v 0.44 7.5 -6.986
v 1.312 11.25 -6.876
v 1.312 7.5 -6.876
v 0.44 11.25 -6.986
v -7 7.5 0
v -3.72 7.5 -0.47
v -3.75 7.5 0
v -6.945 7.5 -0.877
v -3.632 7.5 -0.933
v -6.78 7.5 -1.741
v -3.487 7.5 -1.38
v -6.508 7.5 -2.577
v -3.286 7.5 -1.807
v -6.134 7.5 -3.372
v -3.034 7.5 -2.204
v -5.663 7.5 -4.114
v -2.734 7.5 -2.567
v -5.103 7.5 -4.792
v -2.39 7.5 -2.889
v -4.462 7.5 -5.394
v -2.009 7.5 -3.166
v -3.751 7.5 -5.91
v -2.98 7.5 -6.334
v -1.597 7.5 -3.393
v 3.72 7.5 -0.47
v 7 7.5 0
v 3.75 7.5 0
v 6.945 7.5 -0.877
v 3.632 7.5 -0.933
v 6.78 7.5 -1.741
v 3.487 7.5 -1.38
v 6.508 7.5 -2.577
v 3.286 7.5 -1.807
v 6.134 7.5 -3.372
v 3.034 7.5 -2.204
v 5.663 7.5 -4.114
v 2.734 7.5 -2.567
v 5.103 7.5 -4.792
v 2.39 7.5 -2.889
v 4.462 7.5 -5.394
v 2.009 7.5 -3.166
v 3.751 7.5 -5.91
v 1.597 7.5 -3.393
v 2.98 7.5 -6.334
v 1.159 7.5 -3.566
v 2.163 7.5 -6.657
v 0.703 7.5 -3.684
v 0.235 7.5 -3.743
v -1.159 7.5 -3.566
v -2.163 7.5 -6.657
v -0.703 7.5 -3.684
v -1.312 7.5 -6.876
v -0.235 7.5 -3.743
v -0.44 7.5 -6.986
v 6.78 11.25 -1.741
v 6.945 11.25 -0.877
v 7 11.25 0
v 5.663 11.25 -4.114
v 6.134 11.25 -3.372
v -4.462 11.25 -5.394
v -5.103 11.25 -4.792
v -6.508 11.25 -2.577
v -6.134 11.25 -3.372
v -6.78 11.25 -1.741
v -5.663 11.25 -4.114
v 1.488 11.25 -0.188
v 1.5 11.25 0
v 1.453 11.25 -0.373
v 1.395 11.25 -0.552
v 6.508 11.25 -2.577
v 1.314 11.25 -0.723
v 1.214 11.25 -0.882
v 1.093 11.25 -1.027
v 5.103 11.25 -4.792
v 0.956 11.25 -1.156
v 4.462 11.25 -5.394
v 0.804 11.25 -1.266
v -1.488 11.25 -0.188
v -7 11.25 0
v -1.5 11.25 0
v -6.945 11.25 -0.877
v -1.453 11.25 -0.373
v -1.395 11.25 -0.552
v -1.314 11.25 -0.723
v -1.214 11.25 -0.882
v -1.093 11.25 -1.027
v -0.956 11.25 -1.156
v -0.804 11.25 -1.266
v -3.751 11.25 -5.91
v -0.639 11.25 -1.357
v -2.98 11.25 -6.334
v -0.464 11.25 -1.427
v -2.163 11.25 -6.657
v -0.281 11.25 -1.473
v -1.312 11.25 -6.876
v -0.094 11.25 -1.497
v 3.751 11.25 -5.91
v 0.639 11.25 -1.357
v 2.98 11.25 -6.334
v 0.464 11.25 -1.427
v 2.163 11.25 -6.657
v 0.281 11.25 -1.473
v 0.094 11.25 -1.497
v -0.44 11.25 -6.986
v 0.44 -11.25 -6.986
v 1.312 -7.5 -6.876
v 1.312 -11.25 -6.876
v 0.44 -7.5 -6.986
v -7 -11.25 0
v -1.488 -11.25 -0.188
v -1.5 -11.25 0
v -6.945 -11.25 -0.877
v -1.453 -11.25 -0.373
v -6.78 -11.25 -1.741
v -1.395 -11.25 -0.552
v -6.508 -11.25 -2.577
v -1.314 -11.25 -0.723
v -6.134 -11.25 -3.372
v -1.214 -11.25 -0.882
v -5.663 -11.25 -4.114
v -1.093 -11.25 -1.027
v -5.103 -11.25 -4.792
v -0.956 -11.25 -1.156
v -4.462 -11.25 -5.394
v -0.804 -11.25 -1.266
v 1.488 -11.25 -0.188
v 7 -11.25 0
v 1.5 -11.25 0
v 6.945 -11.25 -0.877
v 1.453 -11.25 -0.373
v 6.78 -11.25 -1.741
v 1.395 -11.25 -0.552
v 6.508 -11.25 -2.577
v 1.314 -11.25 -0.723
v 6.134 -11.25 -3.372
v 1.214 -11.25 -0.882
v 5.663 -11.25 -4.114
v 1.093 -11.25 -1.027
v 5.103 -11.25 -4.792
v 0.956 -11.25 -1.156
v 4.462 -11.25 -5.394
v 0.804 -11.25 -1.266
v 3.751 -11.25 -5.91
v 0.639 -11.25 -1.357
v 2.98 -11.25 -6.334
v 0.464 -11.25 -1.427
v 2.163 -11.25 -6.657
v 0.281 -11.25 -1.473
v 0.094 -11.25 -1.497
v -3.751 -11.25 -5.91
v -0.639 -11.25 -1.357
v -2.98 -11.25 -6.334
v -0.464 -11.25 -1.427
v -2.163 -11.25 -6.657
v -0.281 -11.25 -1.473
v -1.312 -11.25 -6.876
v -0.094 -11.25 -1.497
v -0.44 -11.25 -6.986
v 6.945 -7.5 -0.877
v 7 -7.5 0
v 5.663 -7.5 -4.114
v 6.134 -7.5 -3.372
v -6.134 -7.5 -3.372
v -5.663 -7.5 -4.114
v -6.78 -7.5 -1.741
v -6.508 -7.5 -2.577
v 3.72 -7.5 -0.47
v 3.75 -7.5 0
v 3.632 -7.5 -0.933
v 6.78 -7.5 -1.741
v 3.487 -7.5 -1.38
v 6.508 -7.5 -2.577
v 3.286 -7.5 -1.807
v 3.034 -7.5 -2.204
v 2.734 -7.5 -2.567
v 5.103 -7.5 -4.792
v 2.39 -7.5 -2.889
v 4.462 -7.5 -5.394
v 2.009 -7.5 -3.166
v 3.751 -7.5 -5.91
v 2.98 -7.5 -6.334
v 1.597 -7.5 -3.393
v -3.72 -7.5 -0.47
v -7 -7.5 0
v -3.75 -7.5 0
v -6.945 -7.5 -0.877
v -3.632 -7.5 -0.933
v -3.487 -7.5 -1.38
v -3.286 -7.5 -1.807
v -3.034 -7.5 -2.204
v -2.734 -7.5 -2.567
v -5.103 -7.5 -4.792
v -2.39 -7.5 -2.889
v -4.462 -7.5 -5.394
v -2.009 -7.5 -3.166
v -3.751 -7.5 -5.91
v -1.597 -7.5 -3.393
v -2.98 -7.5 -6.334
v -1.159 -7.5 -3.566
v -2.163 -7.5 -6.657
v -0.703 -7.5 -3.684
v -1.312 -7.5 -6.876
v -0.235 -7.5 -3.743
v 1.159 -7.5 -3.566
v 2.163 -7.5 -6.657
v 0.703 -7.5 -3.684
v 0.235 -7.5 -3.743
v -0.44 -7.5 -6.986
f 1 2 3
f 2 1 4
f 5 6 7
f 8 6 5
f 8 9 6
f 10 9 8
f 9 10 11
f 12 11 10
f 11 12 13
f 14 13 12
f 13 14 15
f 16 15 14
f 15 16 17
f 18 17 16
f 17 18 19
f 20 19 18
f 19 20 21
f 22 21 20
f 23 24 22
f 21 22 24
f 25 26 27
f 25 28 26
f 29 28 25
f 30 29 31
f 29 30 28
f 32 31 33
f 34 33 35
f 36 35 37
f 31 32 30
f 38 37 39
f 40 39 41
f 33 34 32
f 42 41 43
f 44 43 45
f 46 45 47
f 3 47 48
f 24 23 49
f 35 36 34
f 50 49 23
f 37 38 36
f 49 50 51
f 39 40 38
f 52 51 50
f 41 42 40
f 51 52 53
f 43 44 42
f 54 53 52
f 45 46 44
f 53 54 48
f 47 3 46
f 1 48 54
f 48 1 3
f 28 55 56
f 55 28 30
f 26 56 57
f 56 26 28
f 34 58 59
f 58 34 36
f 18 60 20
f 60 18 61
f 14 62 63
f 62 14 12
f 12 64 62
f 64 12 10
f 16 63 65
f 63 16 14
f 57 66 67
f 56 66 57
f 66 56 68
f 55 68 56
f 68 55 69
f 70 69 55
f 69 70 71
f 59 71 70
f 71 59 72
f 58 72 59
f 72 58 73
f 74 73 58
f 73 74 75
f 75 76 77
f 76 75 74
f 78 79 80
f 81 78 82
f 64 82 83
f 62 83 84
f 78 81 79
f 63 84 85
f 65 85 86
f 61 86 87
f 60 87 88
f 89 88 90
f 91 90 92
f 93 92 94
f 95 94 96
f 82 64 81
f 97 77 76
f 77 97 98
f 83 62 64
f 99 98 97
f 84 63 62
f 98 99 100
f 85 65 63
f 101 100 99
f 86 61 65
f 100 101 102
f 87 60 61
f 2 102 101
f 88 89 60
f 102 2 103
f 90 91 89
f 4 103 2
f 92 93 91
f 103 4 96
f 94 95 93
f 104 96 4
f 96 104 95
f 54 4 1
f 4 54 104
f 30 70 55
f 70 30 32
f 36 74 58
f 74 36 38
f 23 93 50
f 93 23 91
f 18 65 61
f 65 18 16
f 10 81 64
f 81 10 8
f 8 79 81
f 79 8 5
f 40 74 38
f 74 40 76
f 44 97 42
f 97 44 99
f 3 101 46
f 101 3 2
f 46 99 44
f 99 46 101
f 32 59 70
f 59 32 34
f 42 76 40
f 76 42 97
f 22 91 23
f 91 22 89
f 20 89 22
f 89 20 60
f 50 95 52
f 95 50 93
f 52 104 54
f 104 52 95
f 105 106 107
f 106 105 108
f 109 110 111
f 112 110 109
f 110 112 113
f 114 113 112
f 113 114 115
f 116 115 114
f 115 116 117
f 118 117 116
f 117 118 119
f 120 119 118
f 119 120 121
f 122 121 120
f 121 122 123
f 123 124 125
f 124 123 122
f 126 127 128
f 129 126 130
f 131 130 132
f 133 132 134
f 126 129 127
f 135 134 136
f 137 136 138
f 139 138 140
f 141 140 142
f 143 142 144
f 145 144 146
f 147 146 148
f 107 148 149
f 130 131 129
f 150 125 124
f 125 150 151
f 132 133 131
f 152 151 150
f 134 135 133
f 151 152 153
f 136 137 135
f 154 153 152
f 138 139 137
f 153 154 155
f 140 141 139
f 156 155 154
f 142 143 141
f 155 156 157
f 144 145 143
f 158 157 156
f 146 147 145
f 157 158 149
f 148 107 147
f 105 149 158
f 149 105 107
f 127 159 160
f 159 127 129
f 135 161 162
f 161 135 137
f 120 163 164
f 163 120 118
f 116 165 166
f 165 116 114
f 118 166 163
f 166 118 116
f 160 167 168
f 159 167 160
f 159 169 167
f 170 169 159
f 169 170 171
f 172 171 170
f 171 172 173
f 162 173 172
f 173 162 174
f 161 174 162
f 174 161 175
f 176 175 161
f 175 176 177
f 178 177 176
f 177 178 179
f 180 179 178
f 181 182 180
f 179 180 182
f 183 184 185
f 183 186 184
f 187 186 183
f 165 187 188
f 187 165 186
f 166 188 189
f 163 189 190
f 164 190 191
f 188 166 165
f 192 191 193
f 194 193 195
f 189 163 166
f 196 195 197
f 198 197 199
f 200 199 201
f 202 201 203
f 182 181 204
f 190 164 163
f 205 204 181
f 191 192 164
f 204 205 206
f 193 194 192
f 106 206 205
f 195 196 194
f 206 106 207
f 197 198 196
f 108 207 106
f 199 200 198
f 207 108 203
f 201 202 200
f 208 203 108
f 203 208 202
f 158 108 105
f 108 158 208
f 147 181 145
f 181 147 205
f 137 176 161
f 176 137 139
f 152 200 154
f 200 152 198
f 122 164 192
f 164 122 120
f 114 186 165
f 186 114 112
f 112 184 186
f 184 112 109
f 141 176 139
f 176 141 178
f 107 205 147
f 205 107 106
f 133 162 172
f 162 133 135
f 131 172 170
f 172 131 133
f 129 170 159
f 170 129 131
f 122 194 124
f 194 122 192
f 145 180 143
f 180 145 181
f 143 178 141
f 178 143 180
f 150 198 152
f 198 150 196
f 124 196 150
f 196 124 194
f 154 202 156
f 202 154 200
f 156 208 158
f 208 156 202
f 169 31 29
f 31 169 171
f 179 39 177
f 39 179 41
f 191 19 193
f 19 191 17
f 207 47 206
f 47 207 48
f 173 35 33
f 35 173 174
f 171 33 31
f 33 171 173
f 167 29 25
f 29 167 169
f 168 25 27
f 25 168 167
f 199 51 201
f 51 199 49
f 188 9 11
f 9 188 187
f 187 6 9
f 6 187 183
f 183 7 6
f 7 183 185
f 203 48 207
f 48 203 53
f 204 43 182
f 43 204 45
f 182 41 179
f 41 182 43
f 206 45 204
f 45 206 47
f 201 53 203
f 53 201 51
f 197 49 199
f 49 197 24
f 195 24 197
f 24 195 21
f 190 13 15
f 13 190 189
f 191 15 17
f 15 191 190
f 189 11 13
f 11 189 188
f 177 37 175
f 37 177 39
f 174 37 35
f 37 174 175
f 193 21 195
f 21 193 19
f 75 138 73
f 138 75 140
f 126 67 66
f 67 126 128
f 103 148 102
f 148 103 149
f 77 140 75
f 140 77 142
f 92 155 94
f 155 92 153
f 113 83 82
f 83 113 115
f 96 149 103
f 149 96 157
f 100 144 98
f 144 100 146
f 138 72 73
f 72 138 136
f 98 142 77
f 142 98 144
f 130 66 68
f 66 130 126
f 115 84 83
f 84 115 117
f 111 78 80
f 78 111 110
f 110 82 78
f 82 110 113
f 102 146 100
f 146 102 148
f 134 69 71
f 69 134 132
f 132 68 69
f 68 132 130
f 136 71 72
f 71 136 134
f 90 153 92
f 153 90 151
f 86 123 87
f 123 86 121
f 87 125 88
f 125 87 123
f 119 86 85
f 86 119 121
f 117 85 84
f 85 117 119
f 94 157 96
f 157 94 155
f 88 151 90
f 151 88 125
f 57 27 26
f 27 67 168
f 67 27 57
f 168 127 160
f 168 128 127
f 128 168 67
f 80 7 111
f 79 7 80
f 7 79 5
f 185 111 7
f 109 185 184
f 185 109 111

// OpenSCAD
$fn = 50;


difference() {
	union() {
		translate(v = [0, 11.2500000000, 0.0000000000]) {
			rotate(a = [90, 0, 0]) {
				cylinder(h = 3.7500000000, r = 7.0000000000);
			}
		}
		translate(v = [0, -7.5000000000, 0.0000000000]) {
			rotate(a = [90, 0, 0]) {
				cylinder(h = 3.7500000000, r = 7.0000000000);
			}
		}
		translate(v = [0, 11.2500000000, 0.0000000000]) {
			rotate(a = [90, 0, 0]) {
				cylinder(h = 22.5000000000, r = 3.7500000000);
			}
		}
	}
	union() {
		translate(v = [0, 11.2500000000, 0.0000000000]) {
			rotate(a = [90, 0, 0]) {
				cylinder(h = 22.5000000000, r = 1.5000000000);
			}
		}
		translate(v = [-250.0000000000, -250.0000000000, 0]) {
			cube(size = [500, 500, 500]);
		}
		translate(v = [-250.0000000000, -250.0000000000, 0]) {
			cube(size = [500, 500, 500]);
		}
		translate(v = [-250.0000000000, -250.0000000000, 0]) {
			cube(size = [500, 500, 500]);
		}
	}
}
